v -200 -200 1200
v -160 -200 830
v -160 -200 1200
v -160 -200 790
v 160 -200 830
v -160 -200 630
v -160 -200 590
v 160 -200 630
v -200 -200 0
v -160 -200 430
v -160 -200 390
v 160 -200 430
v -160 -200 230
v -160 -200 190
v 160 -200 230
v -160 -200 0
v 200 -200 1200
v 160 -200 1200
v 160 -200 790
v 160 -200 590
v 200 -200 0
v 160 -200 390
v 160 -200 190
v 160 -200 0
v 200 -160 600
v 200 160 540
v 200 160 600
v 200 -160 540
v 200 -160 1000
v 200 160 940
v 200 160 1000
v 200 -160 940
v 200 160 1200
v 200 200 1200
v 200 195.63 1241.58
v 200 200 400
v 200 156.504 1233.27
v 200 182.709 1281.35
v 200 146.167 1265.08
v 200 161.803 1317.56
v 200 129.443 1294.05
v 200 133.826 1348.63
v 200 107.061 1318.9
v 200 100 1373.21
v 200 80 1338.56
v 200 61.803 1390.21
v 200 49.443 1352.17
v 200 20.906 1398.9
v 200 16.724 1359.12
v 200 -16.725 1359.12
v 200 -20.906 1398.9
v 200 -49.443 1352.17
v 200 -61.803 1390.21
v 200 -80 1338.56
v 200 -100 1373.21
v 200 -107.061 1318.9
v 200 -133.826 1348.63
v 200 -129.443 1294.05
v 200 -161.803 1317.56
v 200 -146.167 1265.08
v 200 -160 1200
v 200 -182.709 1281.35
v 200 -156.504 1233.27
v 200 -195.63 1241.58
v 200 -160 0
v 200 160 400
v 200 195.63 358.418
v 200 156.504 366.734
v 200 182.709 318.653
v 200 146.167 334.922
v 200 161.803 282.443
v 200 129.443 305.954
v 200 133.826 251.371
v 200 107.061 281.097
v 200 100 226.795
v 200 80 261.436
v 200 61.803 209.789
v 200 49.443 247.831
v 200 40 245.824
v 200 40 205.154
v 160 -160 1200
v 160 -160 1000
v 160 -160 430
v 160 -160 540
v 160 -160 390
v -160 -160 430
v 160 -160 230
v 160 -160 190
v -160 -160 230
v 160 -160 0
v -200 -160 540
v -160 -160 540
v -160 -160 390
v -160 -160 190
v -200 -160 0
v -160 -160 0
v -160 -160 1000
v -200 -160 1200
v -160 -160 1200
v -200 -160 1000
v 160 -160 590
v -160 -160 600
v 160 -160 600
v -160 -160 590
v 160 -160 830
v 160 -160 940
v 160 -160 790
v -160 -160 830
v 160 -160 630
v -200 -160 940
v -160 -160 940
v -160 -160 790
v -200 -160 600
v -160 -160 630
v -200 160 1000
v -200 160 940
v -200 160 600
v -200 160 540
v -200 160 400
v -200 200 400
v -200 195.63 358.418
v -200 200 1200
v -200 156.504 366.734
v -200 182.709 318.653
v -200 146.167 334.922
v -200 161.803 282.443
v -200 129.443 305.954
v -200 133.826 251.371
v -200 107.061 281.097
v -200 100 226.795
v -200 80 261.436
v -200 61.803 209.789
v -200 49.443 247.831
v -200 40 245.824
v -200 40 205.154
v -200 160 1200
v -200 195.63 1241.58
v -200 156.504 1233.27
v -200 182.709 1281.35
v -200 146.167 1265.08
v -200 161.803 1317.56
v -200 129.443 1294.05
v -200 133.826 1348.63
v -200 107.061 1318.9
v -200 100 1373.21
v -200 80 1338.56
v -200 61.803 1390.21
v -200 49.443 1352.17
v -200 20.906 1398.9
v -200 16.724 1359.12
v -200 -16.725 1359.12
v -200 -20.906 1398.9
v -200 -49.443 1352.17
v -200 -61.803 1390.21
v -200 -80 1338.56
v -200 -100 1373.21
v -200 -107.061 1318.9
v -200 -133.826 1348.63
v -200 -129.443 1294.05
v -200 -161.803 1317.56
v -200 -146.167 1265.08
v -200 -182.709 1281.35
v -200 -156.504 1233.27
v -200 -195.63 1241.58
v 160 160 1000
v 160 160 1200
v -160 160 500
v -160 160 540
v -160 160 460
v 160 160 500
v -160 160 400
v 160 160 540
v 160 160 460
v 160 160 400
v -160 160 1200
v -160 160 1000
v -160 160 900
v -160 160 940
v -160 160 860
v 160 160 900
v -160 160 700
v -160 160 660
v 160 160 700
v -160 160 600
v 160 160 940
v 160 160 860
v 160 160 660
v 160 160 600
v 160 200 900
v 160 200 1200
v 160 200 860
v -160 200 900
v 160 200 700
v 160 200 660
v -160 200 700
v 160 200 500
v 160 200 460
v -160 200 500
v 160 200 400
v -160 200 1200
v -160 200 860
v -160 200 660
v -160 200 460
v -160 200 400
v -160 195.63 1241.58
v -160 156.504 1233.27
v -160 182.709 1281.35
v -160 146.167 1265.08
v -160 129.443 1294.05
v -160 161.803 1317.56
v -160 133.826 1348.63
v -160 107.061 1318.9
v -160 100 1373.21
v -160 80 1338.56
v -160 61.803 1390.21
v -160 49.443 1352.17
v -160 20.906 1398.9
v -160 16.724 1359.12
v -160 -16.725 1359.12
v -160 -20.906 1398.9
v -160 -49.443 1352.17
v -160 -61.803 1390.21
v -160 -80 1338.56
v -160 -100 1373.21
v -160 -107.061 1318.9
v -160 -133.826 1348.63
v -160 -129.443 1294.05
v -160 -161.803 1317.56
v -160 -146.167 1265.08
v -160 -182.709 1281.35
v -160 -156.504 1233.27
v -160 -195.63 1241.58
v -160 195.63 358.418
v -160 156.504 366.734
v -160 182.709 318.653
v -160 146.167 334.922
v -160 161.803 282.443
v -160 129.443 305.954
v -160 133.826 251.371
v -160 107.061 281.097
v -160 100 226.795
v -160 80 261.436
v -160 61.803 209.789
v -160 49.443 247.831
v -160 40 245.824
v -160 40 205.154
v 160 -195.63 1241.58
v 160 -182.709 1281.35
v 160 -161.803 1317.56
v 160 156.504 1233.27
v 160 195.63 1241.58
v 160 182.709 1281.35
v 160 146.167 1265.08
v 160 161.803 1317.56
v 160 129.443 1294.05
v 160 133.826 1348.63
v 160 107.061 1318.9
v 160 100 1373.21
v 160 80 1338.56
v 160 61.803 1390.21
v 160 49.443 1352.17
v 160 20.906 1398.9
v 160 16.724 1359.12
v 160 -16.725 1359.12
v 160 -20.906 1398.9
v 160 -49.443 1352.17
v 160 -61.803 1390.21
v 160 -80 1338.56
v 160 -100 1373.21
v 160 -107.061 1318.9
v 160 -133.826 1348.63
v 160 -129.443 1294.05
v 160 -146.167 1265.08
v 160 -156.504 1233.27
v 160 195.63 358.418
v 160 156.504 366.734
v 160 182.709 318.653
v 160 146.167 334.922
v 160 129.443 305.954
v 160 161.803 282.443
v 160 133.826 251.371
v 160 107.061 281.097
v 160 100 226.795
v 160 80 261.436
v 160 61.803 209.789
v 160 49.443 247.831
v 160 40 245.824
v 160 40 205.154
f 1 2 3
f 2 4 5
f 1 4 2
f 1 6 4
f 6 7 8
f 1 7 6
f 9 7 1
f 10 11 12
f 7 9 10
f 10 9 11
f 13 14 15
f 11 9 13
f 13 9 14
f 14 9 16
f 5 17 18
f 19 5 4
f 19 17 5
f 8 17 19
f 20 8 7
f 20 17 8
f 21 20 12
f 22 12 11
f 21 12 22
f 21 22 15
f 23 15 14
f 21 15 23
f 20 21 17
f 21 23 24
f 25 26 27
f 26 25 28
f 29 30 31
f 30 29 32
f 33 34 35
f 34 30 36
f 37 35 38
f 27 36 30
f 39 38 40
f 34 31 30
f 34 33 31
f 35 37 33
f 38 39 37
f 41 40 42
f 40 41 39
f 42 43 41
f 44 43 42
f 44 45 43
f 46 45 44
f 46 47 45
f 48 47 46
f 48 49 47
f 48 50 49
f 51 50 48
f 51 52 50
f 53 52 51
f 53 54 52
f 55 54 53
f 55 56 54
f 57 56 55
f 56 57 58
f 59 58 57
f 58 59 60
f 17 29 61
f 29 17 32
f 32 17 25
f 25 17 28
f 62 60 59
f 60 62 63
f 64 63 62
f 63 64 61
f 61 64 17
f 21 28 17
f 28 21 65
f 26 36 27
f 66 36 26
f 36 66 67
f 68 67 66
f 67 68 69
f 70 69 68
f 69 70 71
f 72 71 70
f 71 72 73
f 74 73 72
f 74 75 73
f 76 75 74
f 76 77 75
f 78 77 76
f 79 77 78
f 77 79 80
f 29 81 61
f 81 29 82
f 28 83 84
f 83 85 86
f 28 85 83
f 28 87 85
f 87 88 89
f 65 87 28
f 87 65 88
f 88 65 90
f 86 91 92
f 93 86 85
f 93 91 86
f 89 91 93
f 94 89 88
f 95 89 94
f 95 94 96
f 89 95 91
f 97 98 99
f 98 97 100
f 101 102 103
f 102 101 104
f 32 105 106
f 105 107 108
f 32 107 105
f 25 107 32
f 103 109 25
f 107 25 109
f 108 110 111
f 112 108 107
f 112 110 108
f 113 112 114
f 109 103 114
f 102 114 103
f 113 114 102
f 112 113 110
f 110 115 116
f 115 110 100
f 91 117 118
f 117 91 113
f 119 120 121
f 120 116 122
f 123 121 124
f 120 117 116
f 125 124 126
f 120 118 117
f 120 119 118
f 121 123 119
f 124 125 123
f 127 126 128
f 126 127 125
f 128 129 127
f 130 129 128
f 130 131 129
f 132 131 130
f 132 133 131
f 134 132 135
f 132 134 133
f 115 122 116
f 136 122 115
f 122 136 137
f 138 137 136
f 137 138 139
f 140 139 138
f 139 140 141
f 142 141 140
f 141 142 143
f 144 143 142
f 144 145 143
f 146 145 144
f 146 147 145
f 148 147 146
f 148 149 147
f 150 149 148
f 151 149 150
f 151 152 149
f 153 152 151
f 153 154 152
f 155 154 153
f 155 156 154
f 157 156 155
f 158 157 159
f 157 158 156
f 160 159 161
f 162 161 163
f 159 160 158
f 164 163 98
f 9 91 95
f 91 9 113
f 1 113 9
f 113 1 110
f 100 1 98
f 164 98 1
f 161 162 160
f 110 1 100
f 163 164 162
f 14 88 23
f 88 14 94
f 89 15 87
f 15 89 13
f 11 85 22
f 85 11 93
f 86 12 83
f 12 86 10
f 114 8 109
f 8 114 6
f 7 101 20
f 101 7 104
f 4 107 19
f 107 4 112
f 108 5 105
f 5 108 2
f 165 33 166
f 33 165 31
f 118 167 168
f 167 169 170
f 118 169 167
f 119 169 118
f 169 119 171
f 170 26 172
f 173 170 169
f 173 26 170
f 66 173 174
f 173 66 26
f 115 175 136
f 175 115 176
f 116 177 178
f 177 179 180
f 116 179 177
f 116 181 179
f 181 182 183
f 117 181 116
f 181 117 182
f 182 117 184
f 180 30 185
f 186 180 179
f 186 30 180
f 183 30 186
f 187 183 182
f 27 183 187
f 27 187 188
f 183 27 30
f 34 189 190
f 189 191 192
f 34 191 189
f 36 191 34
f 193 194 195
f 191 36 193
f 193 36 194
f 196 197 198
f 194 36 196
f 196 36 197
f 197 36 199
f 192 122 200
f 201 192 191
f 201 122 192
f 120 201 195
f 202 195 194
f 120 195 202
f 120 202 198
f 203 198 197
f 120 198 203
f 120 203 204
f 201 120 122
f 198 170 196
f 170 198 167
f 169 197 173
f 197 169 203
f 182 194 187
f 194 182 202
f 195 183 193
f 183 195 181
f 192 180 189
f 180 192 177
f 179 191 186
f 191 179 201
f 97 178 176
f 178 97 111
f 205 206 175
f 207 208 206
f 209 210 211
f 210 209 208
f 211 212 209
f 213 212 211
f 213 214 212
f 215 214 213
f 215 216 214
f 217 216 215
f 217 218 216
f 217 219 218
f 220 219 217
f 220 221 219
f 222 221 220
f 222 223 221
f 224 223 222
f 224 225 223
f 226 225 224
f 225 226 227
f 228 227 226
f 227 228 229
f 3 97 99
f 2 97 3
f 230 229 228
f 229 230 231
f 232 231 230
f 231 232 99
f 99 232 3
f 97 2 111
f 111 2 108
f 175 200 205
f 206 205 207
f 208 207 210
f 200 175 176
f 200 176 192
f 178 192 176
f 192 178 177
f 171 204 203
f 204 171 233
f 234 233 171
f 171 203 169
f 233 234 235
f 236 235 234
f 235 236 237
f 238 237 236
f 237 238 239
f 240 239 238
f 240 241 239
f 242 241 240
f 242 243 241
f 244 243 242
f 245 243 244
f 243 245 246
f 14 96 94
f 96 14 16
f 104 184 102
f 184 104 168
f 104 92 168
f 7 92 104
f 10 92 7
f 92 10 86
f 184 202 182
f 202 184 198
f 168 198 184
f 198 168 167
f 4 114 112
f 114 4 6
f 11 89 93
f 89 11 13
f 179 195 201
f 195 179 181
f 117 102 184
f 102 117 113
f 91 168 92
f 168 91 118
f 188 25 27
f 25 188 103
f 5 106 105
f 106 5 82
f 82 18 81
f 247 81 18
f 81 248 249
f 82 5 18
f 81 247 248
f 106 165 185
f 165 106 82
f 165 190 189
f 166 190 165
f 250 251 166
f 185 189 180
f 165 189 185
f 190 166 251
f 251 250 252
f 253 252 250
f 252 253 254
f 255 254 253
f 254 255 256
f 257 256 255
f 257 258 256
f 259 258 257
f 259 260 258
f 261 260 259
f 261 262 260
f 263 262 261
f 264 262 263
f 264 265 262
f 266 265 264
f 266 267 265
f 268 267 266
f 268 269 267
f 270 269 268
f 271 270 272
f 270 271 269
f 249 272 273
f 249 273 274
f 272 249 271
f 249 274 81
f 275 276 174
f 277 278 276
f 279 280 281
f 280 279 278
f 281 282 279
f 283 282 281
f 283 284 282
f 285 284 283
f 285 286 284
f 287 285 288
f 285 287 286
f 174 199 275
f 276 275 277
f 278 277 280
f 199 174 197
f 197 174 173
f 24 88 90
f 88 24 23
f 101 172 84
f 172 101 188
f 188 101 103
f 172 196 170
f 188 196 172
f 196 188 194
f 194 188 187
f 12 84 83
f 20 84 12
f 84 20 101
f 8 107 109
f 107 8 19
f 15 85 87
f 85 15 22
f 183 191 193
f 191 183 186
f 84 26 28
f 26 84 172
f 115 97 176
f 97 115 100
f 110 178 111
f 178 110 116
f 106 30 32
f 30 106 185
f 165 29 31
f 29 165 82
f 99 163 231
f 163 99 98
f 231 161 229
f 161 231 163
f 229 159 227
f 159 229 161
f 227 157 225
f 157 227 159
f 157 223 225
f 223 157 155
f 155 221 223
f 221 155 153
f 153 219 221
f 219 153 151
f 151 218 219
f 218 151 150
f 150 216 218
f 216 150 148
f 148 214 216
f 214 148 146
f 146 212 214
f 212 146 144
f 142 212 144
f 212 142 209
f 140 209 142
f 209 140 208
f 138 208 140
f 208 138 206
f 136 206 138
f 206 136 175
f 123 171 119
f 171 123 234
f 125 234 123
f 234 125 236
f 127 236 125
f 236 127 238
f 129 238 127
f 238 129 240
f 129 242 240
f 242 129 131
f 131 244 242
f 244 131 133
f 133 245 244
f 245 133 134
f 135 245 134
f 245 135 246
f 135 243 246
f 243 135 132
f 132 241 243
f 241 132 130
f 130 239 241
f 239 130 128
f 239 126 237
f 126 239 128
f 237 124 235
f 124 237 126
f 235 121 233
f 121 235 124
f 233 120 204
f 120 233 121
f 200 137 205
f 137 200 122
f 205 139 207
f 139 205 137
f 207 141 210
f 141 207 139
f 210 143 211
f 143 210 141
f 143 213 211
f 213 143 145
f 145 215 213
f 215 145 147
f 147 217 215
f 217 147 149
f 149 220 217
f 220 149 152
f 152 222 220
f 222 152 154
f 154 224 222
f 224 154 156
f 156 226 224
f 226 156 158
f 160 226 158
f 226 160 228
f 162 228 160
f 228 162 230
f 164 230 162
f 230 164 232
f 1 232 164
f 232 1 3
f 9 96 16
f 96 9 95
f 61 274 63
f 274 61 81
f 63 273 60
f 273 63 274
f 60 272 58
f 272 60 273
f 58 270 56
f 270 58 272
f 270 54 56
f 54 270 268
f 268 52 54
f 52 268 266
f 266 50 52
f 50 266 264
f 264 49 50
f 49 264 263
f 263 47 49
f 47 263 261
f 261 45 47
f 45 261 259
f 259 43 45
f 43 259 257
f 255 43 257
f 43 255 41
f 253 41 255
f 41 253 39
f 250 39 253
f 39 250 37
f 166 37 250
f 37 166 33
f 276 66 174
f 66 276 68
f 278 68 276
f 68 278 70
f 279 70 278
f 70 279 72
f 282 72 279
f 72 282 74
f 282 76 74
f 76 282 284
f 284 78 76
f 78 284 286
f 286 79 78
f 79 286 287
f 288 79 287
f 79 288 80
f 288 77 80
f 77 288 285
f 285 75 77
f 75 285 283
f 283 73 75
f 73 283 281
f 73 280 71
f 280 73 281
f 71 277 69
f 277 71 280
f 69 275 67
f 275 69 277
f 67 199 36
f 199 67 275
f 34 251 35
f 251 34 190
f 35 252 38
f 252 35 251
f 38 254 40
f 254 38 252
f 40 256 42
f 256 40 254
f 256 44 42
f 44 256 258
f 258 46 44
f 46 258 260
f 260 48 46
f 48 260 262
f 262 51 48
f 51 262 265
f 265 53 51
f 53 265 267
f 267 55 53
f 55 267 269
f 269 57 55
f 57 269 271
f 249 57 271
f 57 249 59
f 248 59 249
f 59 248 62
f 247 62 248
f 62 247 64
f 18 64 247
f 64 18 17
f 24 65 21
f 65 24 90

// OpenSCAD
ladder_width=400;
ladder_height=1400;
ladder_depth=400;
ladder_rod_diameter=40;
ladder_elevation=200;
ladder_inside_steps=[230,430,630,830]; // top
ladder_outside_steps=[500,700,900]; // top
ladder_supports=[600,1000]; // top


// initial camera distance, rotation and translation

//
module double_step(
    lw=ladder_width,
    lh=ladder_height,
    ld=ladder_depth,
    lrd=ladder_rod_diameter,
    loe=ladder_elevation,
    lis=ladder_inside_steps,
    los=ladder_outside_steps,
    ls=ladder_supports
){
    module post() {
        linear_extrude(lrd)
            difference(){
                union() {
                polygon([[0,0],[ld/2,0],[ld/2,loe+ld/2],[ld,loe+ld/2],[ld,lh-ld/2],[0,lh-ld/2]]);
                translate([ld/2,lh-ld/2])
                    circle(ld/2);
                translate([ld/2,loe+ld/2])
                    circle(ld/2);
                }
                union() {
                polygon([[lrd,0],[lrd+ld/2,0],[lrd+ld/2,loe+ld/2],[ld-lrd,loe+ld/2],[ld-lrd,lh-ld/2],[lrd,lh-ld/2]]);
                translate([ld/2,lh-ld/2])
                    circle(ld/2-lrd);
                translate([ld/2,loe+ld/2])
                    circle(ld/2-lrd);
                }
            }
        }
    
    translate([-lw/2,-ld/2])
    rotate([90,0,90])
    union(){   
        for (i=lis) {
            translate([0,i-lrd,0])
            cube([lrd,lrd,lw]);
        }
        for (i=los) {
            translate([ld-lrd,i-lrd,0])
            cube([lrd,lrd,lw]);
        }   
        for (i=ls) {
            translate([0,i-1.5*lrd,0])
                cube([ld,1.5*lrd,lrd]);
            translate([0,i-1.5*lrd,lw-lrd])
                cube([ld,1.5*lrd,lrd]);
        }
        post();
        translate([0,0,lw-lrd])
            post();
    }

}

double_step();
